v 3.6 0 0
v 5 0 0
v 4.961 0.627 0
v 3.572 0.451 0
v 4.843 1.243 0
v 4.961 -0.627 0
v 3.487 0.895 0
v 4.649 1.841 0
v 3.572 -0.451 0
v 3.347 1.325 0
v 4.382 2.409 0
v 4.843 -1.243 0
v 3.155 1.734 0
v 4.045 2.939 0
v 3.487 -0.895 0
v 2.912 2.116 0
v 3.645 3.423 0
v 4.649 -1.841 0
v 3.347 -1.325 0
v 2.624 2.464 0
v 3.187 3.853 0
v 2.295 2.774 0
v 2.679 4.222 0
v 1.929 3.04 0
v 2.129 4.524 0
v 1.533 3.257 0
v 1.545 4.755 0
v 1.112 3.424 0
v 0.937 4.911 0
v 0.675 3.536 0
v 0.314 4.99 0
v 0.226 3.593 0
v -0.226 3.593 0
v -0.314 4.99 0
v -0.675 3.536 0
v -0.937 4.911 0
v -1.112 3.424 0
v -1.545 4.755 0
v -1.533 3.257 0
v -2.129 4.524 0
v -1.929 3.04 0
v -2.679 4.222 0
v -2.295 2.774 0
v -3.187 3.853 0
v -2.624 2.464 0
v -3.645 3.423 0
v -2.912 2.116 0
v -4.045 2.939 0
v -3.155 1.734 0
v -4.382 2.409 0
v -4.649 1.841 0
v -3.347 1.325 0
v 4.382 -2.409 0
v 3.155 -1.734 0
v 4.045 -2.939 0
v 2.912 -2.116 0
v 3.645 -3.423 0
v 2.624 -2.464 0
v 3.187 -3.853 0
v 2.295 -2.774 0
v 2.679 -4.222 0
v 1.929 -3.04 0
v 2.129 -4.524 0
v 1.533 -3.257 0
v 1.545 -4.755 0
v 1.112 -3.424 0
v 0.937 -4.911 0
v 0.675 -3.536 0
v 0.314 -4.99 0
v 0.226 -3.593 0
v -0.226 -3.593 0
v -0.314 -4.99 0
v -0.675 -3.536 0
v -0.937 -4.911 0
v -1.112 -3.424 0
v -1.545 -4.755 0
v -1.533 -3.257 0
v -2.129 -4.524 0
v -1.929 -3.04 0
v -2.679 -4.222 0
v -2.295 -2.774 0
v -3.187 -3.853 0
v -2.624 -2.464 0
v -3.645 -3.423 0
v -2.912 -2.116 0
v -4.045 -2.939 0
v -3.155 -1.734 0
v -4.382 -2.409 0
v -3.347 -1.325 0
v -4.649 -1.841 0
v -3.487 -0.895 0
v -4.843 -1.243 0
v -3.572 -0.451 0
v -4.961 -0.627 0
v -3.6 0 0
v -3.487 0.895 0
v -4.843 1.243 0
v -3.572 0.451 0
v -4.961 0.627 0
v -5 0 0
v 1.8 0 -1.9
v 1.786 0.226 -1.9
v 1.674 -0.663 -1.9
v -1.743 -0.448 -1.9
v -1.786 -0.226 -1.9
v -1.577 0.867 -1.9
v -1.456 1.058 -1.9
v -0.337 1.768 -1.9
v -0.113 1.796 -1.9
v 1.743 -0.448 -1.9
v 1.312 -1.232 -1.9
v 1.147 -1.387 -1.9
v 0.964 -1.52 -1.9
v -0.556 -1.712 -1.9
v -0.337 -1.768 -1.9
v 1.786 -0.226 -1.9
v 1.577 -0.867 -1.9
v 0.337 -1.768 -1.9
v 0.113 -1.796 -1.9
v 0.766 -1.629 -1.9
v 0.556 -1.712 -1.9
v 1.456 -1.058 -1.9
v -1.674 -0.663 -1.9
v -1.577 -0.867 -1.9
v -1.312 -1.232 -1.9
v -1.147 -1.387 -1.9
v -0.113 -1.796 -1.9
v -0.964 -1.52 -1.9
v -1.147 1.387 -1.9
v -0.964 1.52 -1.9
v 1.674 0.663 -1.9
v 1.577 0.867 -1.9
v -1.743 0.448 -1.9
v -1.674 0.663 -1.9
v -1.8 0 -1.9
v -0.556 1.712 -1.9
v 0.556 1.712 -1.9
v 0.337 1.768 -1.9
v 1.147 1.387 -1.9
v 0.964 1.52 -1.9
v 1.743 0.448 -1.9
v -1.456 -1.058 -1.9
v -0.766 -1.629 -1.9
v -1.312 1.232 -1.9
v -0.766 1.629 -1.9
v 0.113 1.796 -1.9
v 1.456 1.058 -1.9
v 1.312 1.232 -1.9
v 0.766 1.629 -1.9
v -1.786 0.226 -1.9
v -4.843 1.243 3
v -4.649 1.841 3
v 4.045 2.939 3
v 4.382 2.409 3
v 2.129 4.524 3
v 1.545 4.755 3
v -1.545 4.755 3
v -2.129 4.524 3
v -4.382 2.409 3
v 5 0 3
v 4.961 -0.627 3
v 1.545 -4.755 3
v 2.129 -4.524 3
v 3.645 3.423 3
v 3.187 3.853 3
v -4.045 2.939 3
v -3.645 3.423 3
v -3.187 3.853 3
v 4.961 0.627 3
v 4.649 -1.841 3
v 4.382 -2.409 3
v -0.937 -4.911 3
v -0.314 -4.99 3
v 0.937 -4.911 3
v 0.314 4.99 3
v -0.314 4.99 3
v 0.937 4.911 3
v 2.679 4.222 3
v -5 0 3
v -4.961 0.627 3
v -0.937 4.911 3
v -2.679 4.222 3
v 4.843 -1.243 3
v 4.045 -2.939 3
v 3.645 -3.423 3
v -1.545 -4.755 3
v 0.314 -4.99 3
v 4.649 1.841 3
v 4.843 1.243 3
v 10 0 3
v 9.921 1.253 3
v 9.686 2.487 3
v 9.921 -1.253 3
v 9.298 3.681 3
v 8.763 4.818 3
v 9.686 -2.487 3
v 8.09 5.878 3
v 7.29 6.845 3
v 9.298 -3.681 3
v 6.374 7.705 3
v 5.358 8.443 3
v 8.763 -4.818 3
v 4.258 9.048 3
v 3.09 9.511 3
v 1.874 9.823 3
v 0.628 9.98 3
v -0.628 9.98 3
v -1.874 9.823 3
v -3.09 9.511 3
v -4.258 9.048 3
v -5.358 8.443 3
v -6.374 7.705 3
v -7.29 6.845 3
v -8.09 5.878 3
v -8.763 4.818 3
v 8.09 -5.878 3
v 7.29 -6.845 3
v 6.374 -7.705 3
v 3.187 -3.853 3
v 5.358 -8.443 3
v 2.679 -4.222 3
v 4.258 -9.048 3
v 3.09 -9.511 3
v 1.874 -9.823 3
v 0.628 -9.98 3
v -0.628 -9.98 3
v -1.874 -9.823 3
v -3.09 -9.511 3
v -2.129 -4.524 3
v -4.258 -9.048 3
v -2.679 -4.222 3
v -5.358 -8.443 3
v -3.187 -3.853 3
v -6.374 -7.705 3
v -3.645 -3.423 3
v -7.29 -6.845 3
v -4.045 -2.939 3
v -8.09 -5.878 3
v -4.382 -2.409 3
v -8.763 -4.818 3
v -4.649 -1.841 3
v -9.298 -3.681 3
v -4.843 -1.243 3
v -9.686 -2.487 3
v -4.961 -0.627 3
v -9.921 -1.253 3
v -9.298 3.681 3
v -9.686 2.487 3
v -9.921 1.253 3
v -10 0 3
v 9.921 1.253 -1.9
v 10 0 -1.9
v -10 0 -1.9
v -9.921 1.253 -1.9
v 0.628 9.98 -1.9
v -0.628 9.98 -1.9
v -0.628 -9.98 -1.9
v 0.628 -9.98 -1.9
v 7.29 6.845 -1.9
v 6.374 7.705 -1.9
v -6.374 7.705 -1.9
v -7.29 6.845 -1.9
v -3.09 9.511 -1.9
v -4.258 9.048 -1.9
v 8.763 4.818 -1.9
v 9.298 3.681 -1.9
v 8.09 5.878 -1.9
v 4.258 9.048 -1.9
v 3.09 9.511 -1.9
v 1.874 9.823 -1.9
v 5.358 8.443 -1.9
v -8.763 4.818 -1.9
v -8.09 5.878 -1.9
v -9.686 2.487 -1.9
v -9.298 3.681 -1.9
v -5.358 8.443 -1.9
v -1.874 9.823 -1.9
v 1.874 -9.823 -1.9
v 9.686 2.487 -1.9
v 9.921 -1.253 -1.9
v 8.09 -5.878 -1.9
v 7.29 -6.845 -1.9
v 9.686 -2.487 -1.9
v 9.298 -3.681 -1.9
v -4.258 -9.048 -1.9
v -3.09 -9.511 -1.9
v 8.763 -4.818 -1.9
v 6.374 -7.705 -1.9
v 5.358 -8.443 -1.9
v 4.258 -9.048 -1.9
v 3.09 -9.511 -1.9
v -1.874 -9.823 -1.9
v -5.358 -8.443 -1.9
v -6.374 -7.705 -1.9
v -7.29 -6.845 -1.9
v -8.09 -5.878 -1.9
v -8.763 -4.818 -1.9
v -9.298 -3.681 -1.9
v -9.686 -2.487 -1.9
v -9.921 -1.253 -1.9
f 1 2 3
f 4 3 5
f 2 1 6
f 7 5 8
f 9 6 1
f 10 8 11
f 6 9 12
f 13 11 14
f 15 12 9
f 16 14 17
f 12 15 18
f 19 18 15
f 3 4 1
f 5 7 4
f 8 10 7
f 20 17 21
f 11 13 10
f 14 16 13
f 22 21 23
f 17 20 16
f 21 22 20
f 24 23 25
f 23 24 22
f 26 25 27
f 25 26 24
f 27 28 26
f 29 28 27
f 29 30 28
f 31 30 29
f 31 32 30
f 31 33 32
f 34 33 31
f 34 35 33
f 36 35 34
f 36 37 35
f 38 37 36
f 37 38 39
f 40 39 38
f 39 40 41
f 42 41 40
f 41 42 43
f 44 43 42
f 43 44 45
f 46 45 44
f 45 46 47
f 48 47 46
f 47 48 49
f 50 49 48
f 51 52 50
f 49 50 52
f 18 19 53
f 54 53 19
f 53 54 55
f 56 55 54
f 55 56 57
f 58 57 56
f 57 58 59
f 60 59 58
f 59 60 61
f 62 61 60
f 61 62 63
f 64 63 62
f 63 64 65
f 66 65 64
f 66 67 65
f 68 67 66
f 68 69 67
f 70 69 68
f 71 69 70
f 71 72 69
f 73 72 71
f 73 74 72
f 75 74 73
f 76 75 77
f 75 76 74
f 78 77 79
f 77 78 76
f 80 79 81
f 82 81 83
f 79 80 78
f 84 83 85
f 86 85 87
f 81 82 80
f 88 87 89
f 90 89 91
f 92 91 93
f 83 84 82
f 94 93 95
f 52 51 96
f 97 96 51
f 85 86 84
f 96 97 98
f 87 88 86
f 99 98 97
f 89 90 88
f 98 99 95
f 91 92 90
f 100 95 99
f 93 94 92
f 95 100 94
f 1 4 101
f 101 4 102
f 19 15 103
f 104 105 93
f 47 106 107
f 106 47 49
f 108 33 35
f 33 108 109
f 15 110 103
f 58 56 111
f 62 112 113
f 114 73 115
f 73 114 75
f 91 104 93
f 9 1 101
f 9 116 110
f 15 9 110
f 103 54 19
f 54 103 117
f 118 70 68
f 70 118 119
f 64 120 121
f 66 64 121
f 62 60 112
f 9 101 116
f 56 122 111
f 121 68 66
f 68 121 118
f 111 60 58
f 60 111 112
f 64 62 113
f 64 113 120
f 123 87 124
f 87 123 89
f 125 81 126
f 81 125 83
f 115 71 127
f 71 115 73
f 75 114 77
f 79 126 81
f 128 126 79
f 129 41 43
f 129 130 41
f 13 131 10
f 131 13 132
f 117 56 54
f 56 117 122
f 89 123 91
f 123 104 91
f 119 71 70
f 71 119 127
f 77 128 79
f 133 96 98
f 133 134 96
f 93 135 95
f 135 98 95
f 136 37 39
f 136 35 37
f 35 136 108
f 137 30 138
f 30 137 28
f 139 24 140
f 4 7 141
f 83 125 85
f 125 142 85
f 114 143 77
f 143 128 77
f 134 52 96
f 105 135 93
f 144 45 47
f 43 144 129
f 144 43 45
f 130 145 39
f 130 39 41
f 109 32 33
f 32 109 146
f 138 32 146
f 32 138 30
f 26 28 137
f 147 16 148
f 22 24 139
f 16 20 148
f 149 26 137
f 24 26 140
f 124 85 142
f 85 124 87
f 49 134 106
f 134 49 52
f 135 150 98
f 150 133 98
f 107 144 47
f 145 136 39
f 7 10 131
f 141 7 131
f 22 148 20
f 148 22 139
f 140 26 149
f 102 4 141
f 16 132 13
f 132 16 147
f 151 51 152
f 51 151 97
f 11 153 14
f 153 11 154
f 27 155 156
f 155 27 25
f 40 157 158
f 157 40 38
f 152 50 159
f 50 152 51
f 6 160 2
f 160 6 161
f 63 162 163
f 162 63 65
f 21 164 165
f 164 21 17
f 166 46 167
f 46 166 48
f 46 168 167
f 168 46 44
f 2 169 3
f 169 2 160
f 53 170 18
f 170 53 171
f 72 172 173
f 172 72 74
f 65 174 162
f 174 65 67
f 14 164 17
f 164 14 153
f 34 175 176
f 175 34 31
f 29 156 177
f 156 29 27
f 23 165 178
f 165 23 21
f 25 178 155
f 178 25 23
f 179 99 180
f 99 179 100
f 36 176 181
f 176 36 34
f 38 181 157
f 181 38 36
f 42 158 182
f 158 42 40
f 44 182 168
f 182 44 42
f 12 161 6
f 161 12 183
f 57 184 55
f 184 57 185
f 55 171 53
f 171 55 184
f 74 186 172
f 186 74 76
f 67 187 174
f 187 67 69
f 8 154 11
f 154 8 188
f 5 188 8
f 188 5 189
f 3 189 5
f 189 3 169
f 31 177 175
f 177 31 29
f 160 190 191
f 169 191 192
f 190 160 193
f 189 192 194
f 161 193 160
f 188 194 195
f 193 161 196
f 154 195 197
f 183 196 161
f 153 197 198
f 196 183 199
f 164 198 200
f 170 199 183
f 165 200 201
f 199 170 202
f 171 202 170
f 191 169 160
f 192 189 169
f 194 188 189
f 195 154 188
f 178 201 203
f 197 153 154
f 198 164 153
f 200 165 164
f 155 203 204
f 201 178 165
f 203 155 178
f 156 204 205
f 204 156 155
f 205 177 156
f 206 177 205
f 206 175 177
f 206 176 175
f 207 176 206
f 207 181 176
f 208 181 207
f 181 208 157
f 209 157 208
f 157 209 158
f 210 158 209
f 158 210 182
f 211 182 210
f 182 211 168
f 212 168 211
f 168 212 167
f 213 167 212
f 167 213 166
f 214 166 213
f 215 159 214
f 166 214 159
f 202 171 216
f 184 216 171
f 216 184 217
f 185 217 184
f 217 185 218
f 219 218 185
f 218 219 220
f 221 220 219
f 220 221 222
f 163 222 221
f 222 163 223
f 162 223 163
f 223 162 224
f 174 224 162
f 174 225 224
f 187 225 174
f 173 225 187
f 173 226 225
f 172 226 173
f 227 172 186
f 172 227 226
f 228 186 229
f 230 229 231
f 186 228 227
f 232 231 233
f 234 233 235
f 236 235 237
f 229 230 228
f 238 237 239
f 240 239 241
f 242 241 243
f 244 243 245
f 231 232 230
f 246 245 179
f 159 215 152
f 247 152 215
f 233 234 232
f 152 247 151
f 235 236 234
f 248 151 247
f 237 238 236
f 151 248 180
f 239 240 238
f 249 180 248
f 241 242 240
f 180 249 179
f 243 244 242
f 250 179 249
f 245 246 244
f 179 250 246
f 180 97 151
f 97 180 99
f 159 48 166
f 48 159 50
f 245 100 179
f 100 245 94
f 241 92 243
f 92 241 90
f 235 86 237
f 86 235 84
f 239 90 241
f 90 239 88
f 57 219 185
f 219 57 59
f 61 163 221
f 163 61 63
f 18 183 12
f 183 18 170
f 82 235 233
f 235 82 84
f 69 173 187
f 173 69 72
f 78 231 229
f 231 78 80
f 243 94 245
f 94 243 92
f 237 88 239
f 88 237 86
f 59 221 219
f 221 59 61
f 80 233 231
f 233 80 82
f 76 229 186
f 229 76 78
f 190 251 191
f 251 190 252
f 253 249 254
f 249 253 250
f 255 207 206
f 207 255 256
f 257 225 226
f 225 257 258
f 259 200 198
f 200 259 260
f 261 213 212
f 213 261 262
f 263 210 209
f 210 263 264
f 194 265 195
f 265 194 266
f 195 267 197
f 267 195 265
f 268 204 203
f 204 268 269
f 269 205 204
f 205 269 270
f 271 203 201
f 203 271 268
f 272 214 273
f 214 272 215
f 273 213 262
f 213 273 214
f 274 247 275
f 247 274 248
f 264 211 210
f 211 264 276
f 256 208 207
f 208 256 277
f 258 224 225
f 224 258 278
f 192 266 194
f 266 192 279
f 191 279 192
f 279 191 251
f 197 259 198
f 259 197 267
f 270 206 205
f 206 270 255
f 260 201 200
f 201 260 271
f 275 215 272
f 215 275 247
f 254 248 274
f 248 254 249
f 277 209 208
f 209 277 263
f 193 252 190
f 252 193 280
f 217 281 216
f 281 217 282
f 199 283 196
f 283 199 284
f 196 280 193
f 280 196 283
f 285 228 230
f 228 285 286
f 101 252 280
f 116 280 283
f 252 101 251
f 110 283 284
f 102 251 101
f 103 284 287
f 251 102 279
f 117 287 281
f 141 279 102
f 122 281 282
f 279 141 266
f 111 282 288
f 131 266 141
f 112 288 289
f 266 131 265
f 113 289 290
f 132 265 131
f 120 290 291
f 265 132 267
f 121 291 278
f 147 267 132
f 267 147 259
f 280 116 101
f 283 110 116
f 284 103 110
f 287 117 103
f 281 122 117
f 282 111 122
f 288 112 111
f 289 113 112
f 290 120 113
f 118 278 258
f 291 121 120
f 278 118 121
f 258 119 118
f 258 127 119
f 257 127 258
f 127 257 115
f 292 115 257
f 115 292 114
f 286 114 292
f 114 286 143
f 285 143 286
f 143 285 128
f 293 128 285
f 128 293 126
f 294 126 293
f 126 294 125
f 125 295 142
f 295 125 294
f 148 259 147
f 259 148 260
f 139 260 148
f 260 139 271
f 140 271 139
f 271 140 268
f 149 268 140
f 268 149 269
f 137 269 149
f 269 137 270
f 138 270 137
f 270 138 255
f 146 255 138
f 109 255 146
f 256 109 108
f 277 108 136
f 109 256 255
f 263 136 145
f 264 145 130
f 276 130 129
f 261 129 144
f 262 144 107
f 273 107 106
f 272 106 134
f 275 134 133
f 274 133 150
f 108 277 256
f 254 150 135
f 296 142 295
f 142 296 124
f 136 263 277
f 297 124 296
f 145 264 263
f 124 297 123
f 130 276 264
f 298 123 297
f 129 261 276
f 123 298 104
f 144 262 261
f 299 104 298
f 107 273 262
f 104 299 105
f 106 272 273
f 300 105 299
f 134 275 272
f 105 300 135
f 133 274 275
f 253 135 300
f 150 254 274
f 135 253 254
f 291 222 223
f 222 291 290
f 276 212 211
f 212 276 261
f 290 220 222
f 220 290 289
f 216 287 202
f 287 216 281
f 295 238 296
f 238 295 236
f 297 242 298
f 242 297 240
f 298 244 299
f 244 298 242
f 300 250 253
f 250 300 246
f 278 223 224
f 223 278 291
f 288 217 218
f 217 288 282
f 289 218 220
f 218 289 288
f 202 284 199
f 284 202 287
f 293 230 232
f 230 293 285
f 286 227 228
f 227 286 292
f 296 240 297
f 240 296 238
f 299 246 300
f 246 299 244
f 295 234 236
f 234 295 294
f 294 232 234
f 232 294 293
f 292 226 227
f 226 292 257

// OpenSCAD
$fn = 50;

difference() {
	union() {
		translate(v = [0, 0, -1.9000000000000004]) {
			cylinder(h = 4.9, r = 10.0);
		}
	}
	union() {
		translate(v = [0, 0, 0]) {
			rotate(a = [0, 0, 0]) {
				difference() {
					union() {
						translate(v = [0, 0, -4.9]) {
							cylinder(h = 4.9, r = 1.5);
						}
						translate(v = [0, 0, -1.9]) {
							cylinder(h = 1.9, r1 = 1.8, r2 = 3.6);
						}
						translate(v = [0, 0, -4.9]) {
							cylinder(h = 4.9, r = 1.8);
						}
						translate(v = [0, 0, -4.9]) {
							cylinder(h = 4.9, r = 1.5);
						}
					}
					union();
				}
			}
		}
		#cylinder(h = 3, r = 5.0);
	}
}
